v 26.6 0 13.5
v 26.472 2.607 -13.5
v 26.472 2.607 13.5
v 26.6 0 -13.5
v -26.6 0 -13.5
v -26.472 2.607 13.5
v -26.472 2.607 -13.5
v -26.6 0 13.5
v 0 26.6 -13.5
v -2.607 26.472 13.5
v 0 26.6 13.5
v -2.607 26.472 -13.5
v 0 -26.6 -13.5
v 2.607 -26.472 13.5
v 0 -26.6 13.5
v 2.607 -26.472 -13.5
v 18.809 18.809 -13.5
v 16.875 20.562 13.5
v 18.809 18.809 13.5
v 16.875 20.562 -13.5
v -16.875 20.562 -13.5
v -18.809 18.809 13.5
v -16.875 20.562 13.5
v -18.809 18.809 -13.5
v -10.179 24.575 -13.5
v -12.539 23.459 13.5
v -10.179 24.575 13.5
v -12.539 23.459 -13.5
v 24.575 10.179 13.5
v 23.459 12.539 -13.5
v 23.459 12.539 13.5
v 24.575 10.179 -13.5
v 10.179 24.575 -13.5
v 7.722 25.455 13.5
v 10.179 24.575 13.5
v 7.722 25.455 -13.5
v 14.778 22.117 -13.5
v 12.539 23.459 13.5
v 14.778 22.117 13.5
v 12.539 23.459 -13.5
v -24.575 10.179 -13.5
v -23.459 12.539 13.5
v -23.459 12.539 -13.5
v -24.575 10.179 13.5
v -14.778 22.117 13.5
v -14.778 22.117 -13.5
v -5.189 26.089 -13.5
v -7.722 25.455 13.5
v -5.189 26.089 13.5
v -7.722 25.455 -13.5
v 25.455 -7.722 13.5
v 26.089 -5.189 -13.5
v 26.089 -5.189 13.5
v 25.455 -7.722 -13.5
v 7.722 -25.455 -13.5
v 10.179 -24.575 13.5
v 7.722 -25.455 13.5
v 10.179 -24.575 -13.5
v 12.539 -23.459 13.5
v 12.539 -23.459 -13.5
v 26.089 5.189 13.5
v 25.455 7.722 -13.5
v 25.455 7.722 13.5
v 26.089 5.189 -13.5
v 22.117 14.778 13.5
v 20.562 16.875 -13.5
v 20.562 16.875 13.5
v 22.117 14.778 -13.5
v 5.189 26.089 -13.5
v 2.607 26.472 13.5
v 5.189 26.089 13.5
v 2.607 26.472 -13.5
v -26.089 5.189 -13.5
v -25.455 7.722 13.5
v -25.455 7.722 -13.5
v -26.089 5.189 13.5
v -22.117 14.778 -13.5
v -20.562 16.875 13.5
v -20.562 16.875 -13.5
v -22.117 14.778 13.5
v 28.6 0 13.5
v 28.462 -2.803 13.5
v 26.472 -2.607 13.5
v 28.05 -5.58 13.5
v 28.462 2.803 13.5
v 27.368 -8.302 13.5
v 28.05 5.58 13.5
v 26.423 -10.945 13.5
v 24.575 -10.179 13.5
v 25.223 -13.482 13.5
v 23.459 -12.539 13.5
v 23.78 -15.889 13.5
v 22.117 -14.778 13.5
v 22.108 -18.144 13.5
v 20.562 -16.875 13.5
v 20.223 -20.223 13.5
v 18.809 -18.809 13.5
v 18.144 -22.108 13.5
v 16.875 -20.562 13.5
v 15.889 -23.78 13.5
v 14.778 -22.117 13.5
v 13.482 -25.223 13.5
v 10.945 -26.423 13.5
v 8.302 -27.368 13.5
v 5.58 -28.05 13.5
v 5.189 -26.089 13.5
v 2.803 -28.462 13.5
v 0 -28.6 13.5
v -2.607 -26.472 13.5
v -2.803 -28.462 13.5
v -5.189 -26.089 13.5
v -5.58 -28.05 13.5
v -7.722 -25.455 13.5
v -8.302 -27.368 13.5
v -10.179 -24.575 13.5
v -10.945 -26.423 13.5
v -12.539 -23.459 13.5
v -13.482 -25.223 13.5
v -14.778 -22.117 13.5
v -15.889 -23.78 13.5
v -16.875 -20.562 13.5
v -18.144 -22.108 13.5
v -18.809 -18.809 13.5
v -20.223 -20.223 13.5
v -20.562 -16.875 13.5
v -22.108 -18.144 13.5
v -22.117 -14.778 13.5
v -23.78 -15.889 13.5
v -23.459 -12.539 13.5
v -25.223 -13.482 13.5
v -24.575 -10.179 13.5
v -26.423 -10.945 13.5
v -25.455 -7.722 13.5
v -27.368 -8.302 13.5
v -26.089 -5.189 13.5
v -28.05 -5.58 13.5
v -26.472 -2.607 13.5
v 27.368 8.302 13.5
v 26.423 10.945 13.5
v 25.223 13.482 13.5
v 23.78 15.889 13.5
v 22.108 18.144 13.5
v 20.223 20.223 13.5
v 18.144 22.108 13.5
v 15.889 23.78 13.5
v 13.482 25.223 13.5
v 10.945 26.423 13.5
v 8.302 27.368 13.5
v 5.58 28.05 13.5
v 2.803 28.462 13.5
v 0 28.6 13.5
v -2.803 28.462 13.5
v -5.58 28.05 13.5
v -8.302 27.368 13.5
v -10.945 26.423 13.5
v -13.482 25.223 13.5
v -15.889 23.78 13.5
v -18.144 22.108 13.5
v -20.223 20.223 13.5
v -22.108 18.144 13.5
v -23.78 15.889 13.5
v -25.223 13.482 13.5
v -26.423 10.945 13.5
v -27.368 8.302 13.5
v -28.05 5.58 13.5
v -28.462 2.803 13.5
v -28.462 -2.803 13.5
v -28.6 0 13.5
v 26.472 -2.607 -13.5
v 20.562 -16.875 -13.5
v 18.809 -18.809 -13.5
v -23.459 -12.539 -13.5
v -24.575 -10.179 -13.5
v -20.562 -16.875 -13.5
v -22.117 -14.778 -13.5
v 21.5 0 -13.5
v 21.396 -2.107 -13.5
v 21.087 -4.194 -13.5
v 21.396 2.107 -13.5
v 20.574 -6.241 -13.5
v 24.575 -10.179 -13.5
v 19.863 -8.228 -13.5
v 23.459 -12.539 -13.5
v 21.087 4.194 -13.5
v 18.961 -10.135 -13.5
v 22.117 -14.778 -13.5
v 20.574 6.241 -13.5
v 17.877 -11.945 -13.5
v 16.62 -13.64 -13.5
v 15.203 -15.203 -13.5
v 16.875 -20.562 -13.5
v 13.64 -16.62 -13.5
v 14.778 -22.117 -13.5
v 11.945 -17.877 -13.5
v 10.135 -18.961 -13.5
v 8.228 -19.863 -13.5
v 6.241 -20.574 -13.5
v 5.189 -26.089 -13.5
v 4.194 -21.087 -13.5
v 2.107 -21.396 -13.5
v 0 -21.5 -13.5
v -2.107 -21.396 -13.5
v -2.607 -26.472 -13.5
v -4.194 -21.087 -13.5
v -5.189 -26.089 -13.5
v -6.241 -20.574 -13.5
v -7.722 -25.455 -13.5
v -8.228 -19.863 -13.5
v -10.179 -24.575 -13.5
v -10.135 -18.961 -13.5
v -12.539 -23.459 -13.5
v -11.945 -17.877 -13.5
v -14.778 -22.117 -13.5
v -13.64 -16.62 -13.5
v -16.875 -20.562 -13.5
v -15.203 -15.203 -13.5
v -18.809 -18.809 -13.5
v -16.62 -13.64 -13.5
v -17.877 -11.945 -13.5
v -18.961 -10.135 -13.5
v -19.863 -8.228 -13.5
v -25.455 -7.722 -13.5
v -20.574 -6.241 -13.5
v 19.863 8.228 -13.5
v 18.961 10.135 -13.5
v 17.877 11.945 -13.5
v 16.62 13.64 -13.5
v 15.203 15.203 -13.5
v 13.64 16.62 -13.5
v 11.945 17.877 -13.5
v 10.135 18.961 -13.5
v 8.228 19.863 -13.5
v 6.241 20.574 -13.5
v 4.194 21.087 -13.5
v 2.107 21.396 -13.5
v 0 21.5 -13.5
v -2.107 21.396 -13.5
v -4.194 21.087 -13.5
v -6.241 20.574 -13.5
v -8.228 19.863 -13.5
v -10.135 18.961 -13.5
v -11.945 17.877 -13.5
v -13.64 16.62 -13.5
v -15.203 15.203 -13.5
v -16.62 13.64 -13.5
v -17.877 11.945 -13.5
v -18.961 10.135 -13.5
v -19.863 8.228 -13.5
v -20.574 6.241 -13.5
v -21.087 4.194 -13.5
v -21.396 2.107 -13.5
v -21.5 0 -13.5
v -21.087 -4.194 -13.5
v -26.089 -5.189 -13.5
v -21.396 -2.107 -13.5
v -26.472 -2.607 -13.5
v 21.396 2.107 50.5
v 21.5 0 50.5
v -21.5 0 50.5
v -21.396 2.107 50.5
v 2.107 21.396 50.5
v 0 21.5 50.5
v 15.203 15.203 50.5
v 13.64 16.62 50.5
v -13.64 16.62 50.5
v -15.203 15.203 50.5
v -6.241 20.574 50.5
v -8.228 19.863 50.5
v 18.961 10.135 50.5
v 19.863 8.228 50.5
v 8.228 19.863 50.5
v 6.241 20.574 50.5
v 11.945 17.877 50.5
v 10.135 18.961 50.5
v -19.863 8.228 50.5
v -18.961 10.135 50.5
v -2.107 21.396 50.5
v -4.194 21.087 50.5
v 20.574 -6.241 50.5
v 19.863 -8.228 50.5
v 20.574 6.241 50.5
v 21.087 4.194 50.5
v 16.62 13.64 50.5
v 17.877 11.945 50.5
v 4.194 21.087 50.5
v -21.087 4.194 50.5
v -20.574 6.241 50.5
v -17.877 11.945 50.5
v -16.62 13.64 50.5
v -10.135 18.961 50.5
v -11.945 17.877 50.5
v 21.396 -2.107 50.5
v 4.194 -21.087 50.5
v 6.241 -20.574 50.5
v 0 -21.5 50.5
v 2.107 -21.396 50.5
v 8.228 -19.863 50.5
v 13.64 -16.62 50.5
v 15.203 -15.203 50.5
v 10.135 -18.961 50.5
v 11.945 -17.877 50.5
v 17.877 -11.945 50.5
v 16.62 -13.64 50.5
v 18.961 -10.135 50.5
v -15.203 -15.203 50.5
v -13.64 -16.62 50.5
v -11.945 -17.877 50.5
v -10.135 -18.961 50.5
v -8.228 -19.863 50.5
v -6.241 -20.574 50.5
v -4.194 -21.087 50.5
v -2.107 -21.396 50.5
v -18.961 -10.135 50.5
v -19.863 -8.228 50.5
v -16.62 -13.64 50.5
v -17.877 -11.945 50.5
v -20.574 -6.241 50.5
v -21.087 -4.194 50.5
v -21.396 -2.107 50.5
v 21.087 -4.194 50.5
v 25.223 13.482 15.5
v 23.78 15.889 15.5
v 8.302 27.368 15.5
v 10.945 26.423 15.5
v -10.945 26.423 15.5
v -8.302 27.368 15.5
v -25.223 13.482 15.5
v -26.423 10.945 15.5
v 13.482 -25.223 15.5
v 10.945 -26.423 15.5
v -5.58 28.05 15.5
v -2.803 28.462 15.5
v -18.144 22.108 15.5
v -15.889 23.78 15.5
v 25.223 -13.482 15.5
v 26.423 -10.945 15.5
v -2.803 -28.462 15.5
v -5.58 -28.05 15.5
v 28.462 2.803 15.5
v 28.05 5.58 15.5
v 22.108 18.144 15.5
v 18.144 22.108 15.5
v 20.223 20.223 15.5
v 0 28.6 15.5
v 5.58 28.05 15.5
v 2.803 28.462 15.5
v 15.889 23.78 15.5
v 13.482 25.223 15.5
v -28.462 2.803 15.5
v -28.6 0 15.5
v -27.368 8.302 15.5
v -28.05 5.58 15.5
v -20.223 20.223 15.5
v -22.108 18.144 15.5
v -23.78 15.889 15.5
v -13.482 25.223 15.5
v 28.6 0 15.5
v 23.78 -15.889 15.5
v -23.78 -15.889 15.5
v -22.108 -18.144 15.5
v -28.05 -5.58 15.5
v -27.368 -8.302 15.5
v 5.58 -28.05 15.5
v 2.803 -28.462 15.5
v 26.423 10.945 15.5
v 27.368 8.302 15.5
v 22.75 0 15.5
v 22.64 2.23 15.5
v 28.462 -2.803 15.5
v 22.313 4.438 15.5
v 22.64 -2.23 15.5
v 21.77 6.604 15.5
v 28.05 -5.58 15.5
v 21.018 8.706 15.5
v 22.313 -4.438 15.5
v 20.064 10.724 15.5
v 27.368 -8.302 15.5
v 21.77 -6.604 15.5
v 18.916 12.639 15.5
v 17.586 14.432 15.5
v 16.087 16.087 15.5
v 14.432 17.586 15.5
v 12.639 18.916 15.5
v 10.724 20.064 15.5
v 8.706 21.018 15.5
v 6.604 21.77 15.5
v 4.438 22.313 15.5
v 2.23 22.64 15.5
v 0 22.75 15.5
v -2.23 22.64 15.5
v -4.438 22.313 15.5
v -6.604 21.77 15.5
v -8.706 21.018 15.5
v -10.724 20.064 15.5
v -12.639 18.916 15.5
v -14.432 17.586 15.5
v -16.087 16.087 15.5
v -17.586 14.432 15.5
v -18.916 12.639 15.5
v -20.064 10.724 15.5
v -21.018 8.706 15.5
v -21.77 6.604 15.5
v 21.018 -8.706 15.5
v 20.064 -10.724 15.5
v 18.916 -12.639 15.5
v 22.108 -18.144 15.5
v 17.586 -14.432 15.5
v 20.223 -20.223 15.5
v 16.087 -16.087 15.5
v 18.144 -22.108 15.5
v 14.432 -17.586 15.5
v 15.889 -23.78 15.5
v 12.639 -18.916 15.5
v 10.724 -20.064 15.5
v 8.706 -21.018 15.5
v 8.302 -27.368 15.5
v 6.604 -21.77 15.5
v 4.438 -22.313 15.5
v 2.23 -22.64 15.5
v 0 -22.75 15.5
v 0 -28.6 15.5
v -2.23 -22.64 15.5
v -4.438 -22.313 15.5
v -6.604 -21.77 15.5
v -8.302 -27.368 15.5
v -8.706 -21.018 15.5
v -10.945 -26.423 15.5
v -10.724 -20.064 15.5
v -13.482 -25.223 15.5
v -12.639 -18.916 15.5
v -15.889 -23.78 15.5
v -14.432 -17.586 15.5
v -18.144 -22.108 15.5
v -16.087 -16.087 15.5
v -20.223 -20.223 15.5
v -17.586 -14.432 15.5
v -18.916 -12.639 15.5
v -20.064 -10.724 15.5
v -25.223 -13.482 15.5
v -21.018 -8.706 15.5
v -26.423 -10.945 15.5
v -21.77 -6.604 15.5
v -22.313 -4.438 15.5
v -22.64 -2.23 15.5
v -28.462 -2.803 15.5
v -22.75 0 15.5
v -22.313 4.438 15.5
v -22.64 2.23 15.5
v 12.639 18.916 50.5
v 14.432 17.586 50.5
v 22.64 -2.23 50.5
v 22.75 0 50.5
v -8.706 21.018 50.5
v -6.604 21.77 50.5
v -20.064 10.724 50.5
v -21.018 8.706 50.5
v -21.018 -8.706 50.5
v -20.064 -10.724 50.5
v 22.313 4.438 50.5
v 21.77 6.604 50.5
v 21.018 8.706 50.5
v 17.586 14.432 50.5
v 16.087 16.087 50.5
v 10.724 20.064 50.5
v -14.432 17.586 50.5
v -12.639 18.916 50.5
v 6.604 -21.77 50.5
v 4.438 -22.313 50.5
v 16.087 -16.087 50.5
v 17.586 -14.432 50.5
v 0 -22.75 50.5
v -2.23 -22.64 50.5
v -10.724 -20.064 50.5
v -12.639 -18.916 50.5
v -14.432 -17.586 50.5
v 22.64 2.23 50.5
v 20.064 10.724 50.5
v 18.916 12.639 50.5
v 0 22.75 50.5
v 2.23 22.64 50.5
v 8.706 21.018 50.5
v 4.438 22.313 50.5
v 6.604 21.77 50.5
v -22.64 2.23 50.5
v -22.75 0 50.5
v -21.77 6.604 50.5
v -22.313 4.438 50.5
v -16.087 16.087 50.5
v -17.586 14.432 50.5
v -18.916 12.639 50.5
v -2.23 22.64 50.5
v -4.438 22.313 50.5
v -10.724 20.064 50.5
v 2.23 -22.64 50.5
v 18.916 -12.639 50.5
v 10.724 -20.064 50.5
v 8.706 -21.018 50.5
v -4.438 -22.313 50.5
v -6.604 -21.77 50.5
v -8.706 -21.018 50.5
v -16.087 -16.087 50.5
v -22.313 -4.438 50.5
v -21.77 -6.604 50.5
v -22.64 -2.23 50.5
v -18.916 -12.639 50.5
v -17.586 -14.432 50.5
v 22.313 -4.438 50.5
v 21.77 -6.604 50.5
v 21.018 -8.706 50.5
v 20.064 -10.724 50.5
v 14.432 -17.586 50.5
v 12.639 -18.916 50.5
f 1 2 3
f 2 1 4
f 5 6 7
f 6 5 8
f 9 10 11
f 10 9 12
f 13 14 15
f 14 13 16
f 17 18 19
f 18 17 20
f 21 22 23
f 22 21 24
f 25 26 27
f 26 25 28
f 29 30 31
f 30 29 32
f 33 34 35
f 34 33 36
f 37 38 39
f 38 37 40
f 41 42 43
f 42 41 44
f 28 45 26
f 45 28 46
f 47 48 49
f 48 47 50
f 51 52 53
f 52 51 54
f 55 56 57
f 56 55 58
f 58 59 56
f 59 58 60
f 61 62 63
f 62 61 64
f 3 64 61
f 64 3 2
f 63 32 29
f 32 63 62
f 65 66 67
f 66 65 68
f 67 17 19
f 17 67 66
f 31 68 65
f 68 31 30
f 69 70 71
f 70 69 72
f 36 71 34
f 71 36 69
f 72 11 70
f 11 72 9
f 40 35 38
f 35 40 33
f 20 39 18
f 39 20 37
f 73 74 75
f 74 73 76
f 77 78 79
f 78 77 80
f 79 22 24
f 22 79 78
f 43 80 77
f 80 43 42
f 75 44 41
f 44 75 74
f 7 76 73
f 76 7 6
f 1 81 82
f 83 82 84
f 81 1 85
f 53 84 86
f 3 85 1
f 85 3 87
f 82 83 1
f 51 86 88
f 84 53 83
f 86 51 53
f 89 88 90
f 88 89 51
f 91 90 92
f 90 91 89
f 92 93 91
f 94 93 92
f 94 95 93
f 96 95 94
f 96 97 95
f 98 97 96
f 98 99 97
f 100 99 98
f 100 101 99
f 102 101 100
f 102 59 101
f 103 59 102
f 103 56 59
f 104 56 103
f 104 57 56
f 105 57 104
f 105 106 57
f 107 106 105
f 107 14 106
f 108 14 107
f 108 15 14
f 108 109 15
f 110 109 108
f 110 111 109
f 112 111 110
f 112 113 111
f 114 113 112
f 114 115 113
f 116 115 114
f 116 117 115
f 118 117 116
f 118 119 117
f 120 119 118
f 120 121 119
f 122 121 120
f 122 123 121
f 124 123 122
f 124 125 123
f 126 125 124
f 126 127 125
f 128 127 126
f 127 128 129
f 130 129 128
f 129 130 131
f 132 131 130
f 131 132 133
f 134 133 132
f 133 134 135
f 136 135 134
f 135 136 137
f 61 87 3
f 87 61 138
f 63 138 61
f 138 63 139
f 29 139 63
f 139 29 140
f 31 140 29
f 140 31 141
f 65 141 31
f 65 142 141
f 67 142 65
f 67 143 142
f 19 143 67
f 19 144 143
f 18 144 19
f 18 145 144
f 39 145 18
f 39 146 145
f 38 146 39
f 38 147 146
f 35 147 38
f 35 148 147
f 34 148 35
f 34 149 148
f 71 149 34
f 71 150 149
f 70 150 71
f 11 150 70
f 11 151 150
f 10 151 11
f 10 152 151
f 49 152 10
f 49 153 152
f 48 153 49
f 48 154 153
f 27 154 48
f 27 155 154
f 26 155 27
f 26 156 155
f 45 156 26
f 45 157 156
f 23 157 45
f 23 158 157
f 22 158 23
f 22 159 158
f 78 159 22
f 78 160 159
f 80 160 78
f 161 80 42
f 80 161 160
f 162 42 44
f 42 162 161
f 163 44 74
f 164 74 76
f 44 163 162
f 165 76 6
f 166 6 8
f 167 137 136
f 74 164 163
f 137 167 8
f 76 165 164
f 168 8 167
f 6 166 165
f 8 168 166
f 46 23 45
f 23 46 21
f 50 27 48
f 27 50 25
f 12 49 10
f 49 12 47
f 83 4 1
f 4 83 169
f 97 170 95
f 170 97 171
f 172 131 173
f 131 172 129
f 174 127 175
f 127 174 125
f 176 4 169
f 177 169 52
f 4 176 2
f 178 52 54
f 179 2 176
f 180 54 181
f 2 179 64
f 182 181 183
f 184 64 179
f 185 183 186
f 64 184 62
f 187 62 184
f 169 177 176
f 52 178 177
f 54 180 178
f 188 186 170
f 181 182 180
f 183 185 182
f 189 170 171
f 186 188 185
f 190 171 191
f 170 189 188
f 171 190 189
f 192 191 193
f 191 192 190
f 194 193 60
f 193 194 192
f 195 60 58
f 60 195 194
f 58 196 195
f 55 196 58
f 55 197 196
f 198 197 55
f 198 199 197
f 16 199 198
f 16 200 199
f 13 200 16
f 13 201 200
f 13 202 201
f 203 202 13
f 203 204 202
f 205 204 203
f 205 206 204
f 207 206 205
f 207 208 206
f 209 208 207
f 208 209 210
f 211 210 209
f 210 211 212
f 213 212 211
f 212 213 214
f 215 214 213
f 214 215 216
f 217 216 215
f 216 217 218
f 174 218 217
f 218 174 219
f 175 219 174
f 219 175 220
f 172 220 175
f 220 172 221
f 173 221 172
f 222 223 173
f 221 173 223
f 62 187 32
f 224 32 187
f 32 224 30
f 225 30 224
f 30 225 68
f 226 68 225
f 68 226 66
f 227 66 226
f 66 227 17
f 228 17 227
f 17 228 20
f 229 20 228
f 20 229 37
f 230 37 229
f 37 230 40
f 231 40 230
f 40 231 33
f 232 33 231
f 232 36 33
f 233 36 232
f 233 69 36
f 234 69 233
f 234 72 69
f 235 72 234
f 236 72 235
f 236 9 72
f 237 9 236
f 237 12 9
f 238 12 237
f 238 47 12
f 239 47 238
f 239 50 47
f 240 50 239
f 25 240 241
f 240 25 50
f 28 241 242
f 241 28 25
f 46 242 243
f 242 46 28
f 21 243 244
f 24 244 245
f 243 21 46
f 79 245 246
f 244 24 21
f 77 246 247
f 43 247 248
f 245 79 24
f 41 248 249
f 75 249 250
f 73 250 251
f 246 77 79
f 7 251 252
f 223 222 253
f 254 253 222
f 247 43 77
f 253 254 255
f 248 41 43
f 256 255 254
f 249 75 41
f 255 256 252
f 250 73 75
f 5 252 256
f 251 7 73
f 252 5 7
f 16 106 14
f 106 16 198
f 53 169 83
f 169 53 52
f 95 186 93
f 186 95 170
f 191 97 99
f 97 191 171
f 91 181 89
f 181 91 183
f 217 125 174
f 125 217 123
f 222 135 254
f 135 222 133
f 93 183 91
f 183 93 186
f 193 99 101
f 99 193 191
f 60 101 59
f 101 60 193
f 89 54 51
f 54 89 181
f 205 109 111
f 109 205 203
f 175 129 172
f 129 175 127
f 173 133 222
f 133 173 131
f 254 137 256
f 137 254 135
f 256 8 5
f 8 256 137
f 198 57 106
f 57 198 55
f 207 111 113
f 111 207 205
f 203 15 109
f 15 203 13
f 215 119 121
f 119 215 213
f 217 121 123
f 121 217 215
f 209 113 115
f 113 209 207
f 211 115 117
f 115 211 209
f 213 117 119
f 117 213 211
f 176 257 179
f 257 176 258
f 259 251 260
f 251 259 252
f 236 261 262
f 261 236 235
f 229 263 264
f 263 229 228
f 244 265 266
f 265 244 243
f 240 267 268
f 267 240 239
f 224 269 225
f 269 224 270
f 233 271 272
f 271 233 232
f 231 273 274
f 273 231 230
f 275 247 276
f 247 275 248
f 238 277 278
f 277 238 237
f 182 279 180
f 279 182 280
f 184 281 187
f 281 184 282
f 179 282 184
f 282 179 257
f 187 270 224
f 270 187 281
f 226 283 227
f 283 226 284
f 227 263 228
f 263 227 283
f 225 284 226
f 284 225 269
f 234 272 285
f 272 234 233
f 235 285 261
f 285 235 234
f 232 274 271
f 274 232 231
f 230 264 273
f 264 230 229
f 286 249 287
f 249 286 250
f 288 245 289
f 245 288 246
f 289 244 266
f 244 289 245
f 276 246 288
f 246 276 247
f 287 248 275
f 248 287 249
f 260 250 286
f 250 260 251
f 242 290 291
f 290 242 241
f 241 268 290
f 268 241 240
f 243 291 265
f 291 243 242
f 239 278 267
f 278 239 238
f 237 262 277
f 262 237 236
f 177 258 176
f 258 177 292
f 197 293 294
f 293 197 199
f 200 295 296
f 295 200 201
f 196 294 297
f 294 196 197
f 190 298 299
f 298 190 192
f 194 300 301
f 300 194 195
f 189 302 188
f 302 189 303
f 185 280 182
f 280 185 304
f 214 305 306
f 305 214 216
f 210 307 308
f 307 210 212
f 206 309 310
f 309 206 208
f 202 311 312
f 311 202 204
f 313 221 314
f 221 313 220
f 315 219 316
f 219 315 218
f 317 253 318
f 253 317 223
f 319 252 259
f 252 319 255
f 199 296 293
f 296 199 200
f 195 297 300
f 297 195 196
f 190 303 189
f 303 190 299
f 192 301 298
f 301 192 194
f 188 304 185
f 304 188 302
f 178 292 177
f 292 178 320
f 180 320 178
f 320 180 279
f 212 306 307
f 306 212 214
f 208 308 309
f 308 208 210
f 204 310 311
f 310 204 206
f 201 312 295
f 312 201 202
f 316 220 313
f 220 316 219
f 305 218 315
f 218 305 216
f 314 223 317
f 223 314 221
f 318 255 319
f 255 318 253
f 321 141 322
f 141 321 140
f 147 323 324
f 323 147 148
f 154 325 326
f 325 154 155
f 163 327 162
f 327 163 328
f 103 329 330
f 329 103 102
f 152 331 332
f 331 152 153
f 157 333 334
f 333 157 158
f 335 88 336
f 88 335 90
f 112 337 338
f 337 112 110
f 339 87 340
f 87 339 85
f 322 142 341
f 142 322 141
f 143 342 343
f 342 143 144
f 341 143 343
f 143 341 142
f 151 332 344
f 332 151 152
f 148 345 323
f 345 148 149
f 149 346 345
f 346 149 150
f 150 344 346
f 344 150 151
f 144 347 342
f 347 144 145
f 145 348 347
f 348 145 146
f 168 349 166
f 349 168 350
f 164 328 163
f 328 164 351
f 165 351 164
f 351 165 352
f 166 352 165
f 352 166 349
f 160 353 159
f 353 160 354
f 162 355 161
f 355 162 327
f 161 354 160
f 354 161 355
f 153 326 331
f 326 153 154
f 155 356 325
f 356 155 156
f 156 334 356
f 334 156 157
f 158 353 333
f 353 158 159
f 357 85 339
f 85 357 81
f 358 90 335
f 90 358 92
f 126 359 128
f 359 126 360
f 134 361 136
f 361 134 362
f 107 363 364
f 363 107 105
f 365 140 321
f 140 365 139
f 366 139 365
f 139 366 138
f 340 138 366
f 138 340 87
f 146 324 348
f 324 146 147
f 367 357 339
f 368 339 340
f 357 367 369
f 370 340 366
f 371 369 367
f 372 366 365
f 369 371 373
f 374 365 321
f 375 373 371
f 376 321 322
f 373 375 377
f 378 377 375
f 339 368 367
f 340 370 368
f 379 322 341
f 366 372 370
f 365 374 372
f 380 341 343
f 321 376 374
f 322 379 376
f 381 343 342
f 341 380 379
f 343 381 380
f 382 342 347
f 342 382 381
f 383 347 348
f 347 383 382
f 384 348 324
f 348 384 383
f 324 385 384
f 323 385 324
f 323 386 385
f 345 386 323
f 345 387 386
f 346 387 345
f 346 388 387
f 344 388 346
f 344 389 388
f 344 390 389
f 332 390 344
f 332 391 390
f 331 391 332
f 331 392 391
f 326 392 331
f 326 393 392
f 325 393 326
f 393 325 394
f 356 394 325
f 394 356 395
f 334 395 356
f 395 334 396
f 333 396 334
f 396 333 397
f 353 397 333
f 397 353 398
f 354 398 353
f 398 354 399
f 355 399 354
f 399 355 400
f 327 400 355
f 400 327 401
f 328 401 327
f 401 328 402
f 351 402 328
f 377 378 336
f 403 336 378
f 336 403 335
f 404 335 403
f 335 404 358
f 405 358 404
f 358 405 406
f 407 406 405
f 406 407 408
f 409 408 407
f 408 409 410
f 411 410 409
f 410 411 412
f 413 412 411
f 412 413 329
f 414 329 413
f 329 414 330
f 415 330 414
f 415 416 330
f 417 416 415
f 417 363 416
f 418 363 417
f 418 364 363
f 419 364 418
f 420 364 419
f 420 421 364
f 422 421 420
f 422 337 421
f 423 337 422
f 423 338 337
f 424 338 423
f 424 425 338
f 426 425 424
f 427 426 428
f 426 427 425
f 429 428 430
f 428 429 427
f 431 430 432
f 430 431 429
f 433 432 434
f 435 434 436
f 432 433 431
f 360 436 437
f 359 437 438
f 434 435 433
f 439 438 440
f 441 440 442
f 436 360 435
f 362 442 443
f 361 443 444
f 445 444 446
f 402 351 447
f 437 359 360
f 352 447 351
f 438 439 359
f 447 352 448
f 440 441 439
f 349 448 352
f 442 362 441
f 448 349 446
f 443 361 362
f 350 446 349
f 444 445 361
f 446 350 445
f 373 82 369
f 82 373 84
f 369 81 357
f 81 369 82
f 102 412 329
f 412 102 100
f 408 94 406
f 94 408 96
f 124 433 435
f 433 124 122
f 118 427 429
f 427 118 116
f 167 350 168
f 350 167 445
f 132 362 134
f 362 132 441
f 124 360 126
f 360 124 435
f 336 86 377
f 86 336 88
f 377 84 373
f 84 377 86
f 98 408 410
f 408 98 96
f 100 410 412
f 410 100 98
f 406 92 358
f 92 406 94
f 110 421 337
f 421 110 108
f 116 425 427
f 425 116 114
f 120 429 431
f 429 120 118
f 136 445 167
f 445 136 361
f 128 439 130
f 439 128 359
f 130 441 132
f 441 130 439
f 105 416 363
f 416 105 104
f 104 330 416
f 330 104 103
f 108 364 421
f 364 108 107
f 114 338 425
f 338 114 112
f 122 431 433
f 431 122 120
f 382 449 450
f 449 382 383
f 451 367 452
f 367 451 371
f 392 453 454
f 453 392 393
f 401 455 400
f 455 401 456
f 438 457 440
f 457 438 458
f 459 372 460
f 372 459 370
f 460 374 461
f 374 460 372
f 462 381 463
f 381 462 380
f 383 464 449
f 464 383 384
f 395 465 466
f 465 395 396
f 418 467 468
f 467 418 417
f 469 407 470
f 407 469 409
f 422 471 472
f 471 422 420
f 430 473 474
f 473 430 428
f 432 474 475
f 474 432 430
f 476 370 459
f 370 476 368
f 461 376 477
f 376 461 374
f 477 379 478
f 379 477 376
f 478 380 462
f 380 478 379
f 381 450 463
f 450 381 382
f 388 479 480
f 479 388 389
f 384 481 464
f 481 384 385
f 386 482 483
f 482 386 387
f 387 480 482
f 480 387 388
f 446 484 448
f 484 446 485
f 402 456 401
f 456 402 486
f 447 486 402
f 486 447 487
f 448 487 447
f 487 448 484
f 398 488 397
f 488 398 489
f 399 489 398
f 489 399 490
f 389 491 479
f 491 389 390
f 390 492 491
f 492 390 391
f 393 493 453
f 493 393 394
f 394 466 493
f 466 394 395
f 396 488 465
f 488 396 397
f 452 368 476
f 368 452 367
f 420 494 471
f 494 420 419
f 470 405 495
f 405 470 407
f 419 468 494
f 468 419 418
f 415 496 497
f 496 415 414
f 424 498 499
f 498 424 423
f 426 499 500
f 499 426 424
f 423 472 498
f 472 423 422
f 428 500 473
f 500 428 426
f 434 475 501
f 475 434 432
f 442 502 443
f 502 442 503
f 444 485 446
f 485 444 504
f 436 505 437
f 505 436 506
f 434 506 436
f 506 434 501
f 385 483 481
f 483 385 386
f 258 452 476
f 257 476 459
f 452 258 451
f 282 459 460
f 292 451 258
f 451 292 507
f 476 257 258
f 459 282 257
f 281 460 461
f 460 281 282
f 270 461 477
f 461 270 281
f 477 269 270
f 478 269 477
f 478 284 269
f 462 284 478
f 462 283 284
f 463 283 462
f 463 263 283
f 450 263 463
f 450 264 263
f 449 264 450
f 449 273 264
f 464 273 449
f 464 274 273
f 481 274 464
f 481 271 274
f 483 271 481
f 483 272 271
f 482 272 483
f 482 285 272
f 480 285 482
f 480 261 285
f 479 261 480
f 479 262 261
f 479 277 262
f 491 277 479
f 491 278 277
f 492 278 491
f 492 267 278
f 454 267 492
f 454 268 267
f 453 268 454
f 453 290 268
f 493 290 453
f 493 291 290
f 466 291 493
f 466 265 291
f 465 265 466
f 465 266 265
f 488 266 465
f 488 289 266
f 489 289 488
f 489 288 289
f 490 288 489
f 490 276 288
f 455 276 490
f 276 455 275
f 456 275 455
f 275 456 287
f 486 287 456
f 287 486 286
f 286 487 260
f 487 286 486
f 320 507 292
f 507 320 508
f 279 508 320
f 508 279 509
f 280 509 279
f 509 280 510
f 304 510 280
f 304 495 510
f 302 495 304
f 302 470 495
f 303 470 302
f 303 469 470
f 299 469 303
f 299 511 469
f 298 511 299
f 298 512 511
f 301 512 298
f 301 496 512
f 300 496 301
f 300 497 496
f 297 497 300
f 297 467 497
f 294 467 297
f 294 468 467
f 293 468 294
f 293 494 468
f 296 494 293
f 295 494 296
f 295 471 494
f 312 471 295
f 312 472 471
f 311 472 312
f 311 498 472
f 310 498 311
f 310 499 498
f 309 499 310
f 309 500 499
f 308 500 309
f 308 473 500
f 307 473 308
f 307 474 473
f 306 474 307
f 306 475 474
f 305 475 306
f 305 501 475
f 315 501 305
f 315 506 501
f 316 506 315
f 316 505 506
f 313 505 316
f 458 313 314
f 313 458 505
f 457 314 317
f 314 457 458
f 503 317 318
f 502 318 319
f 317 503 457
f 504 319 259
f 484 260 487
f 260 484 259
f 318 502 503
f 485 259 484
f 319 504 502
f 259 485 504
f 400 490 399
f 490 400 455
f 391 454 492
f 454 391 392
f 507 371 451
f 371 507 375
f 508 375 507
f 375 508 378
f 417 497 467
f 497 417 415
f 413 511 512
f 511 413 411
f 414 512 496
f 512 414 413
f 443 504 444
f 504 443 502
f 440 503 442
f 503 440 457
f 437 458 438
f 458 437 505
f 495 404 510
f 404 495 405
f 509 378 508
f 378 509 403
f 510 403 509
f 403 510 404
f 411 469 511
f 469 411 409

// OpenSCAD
//hose: 47 z, 52.5 diameter
//attachments: 44 z, 44.5 diameter
$fn=64;

hose_z = 27;
hose_radius = 53.2/2;

lip_z = 2;
lip_radius = hose_radius + 2;

attachment_z = 36;
attachment_radius = 45.5/2;

wall_thickness = 2.5;

translate([0,0,hose_z/2 + lip_z/2]) lip();
translate([0,0,hose_z/2 + attachment_z/2 + lip_z/2]) attachment();
hose();

module attachment(){
  difference(){
    cylinder(r=attachment_radius, h=attachment_z, center=true);
    cylinder(r=attachment_radius - wall_thickness/2, h=attachment_z, center=true);
  }
}

module hose(){
  difference(){
    cylinder(r=hose_radius, h=hose_z, center=true);
    cylinder(r=attachment_radius - wall_thickness/2, h=hose_z, center=true);
  }
}

module lip(){
  difference(){
    cylinder(r=lip_radius, h=lip_z, center=true);
    cylinder(r=attachment_radius - wall_thickness/2, h=hose_z, center=true);
  }
}
